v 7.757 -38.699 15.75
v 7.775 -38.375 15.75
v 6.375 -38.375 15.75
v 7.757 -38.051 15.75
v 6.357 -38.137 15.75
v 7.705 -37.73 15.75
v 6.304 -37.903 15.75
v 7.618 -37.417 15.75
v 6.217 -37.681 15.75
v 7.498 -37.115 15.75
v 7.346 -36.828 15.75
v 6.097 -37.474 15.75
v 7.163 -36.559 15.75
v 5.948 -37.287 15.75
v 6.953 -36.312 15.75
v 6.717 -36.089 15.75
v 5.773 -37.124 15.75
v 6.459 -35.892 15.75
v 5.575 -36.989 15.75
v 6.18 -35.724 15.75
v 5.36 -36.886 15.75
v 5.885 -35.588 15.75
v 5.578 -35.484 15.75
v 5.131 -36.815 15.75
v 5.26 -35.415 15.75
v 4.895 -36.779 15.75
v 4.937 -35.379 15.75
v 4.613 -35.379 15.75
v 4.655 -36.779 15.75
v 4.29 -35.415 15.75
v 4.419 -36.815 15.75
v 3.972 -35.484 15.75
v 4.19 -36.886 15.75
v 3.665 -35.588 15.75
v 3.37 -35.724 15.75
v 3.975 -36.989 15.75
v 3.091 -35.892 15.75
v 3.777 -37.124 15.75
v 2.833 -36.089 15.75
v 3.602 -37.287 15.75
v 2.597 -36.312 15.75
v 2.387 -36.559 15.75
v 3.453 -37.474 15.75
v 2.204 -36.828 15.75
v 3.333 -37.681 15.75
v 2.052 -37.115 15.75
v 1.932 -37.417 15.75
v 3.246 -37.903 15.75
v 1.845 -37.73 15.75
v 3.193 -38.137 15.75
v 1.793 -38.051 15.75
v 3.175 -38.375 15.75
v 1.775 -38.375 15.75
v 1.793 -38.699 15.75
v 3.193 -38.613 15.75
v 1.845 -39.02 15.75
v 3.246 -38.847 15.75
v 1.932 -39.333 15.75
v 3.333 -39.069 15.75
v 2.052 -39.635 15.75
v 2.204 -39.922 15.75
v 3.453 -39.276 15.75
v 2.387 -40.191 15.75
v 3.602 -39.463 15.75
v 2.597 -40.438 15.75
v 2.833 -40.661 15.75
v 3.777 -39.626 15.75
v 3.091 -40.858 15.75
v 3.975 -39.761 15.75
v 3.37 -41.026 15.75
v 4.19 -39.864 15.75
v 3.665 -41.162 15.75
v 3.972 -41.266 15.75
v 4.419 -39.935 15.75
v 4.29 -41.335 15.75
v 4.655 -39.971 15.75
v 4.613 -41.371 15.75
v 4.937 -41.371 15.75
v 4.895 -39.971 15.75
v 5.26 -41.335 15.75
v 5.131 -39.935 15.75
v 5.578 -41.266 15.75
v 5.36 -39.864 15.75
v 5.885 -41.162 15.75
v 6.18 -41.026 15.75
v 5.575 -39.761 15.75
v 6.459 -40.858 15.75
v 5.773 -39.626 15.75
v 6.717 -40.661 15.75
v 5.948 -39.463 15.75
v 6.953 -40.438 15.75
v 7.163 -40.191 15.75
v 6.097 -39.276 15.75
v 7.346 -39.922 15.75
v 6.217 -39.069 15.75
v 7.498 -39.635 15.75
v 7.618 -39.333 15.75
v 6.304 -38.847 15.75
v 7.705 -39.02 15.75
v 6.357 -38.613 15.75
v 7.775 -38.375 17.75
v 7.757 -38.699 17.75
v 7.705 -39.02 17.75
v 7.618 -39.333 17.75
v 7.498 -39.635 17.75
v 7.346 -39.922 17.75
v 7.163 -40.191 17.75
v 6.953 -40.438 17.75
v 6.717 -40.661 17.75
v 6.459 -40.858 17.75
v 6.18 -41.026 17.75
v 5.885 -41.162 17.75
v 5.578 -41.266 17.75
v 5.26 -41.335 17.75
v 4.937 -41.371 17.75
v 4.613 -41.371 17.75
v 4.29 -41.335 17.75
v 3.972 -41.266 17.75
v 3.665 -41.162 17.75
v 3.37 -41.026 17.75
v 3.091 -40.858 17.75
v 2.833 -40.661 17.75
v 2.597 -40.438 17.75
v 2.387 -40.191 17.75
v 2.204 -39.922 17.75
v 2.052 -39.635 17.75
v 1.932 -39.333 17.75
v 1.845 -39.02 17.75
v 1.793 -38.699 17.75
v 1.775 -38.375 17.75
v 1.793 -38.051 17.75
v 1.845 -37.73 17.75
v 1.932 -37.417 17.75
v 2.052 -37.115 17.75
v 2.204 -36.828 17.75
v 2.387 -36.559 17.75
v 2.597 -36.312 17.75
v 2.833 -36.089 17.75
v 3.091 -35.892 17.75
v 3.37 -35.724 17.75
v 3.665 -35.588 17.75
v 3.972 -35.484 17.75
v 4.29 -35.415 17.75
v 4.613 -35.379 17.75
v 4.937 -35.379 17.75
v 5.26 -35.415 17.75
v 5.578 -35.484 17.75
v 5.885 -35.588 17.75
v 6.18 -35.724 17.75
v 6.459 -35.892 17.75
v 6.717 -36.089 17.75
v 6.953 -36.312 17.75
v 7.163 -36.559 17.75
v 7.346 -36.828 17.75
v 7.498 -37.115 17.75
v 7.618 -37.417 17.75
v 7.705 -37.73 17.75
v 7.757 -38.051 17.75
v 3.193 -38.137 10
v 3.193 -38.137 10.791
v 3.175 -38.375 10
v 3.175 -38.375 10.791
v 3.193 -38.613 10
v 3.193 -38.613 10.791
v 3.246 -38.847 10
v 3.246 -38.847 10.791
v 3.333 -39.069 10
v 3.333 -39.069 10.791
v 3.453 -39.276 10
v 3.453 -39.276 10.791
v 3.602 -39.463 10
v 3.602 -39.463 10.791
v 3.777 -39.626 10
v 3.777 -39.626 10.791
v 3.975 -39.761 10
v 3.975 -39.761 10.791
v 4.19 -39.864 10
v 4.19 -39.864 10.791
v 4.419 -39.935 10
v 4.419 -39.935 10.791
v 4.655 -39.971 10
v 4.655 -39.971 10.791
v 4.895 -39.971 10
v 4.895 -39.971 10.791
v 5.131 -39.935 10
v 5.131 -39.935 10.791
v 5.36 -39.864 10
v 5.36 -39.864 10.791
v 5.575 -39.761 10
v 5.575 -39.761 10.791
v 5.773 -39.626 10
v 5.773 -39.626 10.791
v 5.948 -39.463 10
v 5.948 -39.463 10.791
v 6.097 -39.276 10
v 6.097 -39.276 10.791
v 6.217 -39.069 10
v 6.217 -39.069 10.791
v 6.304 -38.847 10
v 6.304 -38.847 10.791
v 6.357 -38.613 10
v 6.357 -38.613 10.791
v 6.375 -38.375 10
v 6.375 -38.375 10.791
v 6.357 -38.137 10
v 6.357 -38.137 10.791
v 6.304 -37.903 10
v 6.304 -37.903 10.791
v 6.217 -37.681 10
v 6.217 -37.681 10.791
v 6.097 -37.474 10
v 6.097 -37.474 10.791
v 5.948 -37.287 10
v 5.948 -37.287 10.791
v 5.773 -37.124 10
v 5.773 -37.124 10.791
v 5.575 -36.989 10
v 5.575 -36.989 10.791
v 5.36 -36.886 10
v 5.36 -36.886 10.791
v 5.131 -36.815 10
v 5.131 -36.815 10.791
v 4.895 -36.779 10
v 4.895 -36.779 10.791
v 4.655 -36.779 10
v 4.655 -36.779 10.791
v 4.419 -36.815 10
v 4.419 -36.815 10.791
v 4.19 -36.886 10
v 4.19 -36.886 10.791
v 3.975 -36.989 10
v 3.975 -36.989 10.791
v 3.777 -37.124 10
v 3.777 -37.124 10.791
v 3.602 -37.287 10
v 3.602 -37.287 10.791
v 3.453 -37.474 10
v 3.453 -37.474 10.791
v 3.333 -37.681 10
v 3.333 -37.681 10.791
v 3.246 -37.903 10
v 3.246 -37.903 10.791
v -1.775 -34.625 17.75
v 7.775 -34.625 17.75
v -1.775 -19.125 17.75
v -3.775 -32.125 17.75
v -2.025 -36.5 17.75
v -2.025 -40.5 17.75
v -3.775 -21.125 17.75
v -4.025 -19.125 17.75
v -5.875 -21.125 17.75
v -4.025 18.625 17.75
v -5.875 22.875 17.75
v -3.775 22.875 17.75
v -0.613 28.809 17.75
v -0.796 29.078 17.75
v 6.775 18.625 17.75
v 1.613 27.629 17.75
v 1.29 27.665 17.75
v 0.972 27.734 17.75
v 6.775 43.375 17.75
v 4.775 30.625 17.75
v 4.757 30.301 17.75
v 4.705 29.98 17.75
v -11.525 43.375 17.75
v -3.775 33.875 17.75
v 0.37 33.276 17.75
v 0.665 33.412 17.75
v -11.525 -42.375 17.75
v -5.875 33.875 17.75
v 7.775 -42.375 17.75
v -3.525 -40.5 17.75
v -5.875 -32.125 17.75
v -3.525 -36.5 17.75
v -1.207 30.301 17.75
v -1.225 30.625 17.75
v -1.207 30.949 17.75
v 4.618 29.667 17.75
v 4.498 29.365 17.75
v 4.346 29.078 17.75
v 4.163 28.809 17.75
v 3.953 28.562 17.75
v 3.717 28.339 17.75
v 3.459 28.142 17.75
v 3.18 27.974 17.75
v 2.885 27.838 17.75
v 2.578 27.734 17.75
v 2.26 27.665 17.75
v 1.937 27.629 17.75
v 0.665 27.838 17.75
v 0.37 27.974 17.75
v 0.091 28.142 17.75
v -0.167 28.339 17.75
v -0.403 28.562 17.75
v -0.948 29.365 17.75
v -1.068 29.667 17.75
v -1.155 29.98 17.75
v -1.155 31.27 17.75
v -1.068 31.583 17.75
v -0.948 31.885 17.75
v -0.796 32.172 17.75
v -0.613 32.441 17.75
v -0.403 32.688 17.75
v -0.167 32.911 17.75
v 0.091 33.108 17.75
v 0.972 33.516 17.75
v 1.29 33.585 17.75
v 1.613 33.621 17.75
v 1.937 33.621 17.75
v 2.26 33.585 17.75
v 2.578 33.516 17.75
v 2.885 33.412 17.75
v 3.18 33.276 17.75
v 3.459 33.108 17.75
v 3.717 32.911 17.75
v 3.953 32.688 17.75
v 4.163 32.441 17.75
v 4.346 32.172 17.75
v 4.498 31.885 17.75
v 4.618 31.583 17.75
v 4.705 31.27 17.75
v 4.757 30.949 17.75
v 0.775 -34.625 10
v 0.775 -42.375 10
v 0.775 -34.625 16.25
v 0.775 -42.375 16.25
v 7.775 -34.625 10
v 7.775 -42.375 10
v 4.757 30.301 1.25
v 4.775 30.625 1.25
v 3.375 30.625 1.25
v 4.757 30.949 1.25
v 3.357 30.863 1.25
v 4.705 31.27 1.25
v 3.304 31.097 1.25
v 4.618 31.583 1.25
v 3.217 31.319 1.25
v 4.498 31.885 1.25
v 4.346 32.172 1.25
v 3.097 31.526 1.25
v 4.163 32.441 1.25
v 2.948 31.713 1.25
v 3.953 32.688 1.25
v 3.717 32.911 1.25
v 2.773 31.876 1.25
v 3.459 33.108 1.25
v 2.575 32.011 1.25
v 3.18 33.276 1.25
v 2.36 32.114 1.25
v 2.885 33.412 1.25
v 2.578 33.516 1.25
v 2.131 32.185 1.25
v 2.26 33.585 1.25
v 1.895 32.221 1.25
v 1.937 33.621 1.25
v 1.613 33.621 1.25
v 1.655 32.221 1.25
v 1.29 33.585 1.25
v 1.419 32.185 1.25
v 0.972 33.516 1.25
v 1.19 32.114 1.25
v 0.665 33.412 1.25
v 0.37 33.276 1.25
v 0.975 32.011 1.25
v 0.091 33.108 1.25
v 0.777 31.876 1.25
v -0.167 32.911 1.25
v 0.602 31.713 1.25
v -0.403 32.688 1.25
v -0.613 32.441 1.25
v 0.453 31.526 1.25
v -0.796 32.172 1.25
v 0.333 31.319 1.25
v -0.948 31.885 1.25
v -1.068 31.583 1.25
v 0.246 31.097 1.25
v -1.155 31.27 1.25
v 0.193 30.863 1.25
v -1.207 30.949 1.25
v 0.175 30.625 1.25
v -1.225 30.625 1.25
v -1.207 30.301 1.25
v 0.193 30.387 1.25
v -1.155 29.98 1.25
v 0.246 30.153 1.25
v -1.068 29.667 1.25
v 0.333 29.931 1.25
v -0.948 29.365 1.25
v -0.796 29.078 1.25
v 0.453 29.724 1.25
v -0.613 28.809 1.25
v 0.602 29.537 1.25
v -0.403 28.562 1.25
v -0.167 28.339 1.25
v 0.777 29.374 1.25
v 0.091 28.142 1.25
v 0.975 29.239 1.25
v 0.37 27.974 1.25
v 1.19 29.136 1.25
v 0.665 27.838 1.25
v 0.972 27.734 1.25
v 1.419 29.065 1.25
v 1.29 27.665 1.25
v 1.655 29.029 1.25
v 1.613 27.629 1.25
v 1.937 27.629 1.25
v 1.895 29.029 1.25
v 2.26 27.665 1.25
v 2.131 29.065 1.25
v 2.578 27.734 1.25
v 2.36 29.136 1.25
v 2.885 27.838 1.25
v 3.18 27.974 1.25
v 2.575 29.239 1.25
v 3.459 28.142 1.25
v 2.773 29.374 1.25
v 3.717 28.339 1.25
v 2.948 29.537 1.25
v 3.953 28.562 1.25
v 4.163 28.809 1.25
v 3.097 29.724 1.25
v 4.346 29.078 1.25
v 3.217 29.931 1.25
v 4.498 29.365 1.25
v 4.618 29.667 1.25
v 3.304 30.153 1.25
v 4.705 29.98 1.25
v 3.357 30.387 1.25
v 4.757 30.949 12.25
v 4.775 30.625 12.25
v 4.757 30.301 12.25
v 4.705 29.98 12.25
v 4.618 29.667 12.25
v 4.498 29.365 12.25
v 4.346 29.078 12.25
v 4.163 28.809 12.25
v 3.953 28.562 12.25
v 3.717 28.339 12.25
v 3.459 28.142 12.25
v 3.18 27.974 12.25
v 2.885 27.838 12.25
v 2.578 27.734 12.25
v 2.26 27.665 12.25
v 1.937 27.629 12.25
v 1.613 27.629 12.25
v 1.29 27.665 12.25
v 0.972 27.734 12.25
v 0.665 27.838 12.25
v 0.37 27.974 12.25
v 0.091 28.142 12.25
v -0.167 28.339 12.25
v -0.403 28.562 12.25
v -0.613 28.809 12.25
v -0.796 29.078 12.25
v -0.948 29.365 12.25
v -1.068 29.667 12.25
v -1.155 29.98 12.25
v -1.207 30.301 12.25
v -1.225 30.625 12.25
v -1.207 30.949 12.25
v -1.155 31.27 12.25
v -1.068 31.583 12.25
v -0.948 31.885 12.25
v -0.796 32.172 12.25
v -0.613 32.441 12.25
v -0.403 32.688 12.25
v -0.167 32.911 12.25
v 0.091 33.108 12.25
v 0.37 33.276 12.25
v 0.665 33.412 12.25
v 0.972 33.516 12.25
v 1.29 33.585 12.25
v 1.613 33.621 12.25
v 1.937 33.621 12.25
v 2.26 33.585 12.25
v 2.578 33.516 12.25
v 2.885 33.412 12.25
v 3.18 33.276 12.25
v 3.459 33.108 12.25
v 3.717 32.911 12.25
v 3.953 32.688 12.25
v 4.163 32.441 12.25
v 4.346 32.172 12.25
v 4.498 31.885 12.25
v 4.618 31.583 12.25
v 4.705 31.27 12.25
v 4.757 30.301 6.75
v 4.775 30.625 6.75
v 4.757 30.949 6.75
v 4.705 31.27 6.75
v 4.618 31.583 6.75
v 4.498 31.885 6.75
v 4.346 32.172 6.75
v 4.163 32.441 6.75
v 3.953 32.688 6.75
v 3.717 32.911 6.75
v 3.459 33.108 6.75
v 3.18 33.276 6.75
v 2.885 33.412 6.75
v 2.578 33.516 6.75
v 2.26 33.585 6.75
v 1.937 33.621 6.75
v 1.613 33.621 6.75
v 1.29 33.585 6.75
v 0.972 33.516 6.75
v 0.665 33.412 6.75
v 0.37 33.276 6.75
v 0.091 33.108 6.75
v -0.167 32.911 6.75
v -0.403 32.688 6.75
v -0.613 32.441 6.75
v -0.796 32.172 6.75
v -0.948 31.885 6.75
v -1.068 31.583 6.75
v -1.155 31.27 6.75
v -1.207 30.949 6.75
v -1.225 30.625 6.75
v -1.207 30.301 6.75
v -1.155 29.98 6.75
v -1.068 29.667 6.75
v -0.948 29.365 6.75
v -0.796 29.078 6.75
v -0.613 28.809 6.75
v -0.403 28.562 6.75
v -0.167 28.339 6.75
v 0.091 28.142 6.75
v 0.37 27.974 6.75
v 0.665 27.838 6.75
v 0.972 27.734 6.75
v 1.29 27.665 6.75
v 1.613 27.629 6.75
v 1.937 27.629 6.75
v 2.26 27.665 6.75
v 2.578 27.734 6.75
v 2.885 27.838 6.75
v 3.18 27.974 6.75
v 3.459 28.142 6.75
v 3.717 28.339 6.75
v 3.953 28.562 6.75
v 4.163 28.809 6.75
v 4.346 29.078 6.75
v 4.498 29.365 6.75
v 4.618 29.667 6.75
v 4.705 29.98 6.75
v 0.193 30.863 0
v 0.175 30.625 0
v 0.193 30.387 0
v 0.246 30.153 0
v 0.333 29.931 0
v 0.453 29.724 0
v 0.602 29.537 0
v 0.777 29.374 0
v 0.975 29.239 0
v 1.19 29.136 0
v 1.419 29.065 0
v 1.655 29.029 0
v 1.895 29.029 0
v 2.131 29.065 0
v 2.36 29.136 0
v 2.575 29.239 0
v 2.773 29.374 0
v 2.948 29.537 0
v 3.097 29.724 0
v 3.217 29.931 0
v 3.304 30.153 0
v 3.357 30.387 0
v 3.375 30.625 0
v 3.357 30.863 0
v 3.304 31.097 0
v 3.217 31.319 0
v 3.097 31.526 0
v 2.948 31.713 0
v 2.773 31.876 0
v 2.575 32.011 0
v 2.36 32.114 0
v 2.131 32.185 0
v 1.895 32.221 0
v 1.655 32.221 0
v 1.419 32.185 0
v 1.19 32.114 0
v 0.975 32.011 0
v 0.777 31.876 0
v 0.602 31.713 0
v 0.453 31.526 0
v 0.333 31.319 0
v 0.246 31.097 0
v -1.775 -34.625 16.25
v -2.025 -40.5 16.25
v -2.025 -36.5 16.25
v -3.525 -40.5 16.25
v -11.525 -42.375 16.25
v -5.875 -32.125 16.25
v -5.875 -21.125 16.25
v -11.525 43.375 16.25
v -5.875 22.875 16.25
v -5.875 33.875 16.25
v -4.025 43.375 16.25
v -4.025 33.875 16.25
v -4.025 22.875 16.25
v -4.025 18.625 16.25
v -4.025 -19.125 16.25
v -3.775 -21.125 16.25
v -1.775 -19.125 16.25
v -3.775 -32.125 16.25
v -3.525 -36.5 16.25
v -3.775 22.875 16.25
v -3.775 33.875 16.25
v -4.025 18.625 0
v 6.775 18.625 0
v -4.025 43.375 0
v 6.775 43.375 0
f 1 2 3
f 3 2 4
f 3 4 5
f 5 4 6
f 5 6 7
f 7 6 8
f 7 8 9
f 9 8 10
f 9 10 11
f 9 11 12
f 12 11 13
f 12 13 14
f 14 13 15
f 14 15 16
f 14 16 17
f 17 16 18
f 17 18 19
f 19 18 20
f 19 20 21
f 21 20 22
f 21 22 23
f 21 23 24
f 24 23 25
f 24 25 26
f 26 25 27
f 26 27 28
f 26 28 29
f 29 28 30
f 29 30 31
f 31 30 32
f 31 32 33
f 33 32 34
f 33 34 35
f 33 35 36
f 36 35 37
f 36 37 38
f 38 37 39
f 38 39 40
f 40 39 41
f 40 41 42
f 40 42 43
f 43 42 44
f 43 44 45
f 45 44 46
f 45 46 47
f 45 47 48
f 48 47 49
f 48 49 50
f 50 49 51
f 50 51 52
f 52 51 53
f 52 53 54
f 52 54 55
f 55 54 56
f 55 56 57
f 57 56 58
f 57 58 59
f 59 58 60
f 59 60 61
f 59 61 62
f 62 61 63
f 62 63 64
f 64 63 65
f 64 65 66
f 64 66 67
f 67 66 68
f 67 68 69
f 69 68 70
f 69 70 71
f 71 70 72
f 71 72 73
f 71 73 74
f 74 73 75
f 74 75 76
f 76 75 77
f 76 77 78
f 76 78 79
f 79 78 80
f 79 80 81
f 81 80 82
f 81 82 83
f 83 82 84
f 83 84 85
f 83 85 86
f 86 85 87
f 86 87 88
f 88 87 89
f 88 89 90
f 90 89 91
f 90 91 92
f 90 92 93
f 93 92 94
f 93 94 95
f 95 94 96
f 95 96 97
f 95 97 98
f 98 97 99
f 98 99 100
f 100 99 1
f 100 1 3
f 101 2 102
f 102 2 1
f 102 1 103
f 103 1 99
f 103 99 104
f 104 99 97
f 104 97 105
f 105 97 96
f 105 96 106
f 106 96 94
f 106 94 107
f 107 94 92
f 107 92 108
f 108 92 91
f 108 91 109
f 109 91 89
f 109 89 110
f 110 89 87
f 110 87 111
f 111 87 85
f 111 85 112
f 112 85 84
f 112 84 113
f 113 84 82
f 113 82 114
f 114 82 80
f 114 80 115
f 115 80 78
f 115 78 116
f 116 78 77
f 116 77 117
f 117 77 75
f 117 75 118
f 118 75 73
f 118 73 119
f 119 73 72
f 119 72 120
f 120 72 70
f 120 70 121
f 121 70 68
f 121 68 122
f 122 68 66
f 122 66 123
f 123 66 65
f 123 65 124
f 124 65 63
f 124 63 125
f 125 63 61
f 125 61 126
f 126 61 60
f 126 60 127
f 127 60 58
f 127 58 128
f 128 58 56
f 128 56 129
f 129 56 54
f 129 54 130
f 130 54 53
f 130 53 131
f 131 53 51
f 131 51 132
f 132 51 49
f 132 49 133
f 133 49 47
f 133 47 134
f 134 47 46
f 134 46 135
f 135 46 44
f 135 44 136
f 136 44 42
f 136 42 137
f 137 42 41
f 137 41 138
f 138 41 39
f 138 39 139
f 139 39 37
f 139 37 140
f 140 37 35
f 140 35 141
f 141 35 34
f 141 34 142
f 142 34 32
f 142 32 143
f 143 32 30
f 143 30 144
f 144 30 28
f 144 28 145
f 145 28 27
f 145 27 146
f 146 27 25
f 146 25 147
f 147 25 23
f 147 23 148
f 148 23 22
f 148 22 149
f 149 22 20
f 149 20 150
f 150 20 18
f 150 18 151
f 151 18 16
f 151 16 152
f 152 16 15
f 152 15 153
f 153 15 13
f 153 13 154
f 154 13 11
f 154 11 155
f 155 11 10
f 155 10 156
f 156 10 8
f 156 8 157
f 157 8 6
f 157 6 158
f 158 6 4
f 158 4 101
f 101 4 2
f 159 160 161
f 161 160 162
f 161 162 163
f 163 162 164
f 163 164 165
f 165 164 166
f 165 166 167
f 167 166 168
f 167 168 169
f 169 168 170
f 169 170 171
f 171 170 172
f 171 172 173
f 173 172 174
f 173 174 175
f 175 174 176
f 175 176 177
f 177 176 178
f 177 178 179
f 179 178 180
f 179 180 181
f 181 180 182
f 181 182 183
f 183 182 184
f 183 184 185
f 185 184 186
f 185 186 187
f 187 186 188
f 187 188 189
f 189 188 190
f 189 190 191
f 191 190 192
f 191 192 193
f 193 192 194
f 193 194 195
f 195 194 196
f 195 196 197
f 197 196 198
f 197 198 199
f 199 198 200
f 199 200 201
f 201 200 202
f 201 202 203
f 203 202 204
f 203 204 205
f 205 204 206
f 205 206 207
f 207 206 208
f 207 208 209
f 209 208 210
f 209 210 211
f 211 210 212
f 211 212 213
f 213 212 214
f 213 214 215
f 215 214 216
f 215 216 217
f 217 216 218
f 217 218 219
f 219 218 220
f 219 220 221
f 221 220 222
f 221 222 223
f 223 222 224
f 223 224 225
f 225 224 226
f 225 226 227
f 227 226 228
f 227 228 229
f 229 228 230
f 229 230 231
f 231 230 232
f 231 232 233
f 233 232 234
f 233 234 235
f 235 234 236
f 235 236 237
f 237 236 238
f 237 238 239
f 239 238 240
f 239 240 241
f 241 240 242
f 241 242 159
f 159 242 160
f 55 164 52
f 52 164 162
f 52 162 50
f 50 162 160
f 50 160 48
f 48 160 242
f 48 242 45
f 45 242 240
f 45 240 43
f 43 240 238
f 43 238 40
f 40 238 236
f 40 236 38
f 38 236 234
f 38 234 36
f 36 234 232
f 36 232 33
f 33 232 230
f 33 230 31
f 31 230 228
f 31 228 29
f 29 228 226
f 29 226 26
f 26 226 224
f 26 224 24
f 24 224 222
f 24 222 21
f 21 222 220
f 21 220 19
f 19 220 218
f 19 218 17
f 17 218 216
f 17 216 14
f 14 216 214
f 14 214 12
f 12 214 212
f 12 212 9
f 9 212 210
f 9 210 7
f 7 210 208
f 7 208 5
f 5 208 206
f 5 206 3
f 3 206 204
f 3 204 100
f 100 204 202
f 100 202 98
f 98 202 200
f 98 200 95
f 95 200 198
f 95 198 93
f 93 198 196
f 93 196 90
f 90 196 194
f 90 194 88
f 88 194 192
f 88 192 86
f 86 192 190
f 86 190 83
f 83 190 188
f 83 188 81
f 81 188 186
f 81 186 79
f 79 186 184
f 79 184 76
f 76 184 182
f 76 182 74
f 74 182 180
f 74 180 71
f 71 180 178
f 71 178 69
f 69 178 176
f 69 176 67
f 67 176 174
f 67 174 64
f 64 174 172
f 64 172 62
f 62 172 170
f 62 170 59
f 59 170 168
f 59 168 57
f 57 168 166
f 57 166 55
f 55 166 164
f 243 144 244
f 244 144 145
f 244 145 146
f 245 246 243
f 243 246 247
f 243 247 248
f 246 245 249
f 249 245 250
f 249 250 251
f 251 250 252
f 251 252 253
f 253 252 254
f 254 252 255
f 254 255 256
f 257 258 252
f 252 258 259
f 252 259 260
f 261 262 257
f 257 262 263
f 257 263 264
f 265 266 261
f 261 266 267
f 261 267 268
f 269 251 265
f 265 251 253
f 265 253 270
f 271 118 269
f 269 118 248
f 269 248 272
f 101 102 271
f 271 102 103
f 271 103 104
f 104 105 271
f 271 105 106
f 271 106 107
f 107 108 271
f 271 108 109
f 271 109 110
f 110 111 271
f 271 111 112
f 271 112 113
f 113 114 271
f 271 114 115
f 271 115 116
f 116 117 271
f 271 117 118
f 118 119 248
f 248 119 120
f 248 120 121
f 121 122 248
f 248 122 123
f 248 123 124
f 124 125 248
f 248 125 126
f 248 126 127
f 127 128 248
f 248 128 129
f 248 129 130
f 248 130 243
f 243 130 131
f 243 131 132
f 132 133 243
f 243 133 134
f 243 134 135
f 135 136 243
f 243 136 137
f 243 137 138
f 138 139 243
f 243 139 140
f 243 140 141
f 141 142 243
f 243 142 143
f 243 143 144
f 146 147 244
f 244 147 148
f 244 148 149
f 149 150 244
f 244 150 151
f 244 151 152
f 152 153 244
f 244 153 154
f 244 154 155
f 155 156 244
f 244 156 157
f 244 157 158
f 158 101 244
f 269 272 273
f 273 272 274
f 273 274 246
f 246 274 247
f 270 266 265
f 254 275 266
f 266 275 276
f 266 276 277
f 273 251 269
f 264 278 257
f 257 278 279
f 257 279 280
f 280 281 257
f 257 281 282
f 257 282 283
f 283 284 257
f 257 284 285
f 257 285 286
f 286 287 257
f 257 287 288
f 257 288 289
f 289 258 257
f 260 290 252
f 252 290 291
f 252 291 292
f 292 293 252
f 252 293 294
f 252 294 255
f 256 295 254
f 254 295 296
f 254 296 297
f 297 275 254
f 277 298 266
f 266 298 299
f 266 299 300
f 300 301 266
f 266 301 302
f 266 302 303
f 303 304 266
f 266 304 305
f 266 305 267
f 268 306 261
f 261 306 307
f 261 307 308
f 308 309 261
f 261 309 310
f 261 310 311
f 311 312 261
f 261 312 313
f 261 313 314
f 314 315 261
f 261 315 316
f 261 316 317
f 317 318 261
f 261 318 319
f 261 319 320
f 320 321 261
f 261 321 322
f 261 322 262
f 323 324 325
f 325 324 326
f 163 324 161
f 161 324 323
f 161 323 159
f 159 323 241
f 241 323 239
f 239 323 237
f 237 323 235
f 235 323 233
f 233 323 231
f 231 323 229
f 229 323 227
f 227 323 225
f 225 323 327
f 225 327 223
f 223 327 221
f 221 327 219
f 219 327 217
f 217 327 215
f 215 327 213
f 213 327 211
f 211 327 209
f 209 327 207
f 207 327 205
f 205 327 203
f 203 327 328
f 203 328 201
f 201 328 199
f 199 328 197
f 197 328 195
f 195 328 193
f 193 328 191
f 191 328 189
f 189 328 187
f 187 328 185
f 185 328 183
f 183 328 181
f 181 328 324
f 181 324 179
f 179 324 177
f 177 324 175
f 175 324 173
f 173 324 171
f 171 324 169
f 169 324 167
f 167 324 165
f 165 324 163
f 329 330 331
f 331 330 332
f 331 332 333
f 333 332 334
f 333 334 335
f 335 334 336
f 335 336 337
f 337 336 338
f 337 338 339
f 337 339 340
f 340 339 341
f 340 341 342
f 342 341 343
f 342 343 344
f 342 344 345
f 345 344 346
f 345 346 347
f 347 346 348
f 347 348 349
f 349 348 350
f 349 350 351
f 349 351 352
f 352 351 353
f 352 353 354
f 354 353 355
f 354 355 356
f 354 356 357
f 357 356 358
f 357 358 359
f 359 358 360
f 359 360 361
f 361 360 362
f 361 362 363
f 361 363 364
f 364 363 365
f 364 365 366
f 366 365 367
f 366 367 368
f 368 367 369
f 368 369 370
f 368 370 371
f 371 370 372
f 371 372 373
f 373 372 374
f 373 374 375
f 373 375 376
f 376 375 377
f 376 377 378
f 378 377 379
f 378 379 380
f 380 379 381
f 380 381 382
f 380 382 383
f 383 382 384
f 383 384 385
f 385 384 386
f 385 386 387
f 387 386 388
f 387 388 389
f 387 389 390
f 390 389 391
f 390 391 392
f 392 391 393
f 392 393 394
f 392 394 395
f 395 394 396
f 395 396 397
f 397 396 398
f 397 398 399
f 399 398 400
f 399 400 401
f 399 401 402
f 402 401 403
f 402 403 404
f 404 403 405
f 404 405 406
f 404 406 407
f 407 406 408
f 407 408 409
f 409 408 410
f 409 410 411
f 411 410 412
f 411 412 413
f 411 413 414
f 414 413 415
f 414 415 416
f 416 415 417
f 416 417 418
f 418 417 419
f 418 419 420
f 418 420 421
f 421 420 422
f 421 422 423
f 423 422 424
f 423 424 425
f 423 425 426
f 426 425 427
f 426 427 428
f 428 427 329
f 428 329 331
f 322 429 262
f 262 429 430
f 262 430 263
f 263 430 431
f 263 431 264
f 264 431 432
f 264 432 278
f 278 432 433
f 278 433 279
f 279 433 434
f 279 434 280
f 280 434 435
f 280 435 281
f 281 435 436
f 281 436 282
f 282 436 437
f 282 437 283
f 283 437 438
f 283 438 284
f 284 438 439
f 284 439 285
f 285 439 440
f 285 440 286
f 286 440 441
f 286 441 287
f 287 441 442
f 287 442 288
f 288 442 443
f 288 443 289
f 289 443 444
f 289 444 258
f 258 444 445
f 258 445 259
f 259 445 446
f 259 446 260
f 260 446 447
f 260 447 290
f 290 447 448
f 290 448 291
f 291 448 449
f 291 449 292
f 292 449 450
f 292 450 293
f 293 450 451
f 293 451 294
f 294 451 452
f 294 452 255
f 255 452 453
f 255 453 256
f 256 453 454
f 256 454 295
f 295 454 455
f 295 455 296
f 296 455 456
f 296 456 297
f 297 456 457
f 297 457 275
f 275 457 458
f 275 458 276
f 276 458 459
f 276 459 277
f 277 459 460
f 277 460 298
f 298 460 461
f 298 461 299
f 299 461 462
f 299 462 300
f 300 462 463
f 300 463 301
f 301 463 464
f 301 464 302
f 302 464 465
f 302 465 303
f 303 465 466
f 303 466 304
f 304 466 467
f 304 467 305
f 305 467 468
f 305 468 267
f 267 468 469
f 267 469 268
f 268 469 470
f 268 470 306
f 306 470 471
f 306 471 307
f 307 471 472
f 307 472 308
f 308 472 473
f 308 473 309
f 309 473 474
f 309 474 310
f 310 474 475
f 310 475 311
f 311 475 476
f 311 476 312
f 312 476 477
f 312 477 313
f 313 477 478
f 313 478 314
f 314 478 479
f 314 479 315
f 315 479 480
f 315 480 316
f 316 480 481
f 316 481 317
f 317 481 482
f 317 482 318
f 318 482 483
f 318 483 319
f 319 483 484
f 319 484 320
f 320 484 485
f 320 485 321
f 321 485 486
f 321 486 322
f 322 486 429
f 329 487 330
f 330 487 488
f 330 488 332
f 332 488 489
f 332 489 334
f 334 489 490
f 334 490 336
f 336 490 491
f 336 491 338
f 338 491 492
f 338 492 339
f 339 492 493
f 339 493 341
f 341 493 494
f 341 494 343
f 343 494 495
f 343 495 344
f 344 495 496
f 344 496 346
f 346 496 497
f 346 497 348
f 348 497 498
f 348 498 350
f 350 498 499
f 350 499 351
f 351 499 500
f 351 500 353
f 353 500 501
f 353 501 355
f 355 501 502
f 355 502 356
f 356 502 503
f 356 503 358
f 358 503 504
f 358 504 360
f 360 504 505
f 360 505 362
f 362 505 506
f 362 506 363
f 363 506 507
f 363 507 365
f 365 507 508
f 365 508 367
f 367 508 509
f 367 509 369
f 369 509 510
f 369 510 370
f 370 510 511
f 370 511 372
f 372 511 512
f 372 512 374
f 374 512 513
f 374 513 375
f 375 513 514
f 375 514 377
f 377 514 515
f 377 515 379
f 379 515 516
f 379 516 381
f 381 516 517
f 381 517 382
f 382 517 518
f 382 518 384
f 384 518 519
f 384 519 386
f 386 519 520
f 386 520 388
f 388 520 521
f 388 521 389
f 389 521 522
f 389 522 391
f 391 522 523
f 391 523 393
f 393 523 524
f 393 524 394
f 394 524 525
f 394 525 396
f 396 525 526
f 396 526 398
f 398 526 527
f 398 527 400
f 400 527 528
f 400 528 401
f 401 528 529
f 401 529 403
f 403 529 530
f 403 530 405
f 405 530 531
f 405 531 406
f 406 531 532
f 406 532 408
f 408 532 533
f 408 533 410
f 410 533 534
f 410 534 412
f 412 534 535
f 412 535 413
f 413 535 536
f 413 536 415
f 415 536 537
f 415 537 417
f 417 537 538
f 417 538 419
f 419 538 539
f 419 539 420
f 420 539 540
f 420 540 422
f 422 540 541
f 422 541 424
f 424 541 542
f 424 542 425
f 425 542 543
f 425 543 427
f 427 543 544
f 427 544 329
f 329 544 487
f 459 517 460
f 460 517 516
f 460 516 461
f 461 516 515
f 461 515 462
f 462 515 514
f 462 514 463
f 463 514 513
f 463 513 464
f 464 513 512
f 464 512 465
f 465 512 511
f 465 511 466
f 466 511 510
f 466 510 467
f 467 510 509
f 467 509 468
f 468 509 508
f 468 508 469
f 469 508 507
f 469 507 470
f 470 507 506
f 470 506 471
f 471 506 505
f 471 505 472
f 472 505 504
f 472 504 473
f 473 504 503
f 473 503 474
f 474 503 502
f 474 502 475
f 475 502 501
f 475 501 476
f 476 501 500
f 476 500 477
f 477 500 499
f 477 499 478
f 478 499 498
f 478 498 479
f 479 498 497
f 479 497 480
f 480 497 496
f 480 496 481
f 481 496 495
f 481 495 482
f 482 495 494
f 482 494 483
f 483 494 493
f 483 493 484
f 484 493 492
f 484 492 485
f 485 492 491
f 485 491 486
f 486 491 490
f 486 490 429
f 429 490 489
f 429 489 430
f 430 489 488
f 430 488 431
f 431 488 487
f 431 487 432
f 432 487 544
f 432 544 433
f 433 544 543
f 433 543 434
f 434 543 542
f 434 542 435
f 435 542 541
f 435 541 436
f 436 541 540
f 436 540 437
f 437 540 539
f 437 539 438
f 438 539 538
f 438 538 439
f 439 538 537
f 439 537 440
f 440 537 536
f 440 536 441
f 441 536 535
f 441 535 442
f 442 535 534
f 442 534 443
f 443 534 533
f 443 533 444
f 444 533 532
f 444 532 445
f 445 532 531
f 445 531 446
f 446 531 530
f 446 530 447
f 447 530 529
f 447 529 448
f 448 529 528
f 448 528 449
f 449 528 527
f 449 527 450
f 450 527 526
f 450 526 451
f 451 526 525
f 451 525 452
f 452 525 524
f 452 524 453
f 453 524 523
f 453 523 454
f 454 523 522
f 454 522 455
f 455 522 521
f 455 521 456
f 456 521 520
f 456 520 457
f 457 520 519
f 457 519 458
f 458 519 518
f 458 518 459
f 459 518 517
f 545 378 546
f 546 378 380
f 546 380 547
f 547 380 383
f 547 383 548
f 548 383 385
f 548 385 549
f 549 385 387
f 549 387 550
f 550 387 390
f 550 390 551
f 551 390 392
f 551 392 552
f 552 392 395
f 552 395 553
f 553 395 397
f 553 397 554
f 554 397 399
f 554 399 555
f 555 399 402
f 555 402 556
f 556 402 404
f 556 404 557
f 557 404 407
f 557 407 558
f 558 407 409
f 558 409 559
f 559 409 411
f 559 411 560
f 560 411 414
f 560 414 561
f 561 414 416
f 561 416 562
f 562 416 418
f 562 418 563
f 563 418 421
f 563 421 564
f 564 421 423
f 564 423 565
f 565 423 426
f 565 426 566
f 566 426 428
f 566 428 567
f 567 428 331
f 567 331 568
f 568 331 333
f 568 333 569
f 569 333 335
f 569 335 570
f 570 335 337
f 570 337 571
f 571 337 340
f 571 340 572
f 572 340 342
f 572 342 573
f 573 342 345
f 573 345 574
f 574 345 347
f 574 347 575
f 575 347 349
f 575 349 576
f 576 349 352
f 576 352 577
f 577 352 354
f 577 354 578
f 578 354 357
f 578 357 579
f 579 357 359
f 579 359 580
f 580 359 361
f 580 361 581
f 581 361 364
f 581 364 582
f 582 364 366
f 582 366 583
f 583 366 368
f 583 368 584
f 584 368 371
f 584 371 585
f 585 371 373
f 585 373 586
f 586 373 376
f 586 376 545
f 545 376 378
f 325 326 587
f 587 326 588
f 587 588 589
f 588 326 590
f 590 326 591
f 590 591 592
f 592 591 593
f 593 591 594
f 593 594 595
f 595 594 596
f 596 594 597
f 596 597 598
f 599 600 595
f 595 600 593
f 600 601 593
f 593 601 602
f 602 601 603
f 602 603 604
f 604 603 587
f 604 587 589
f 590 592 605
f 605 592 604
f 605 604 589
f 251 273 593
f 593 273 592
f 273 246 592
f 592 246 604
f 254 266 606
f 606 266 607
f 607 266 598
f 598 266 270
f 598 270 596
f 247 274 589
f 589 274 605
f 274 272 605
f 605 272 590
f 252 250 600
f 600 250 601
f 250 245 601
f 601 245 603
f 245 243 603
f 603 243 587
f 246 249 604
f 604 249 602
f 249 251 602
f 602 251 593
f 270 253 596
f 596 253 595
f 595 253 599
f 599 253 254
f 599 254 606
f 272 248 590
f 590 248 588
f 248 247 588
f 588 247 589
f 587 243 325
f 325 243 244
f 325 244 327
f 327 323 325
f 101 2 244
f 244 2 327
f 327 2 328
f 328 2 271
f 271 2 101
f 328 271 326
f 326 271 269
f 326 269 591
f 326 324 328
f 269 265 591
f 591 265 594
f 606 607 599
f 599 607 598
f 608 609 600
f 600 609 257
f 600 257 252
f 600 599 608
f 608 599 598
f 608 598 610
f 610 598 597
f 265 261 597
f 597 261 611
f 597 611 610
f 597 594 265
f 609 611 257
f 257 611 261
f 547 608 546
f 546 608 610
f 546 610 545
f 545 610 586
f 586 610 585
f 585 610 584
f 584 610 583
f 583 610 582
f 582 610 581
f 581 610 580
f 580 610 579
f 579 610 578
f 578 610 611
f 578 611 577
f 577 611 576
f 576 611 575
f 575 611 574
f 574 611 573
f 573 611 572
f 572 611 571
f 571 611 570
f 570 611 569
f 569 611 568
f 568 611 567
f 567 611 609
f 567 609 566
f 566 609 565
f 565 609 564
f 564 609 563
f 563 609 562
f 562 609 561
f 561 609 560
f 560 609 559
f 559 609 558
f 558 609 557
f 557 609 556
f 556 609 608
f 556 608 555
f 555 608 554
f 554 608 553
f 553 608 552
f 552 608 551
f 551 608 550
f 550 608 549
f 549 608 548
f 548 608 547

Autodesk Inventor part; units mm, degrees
ref_plane "Work Plane1" through (0, 0, 0) normal (0, 0, 1) x (1, 0, 0)
sketch "Sketch1" plane through (0, 0, 0) normal (0, 0, 1) x (1, 0, 0)
  line L0 (7.775, 18.625) -> (-4.025, 18.625) projected
  line L1 (-4.025, 43.875) -> (7.775, 43.875) projected
  line L2 (-4.025, 18.625) -> (-4.025, 43.875) projected
  line L3 (7.775, 23.875) -> (7.775, -22.625) projected
  line L4 (-4.025, 18.625) -> (6.775, 18.625)
  line L5 (6.775, 18.625) -> (6.775, 43.375)
  line L6 (6.775, 43.375) -> (-4.025, 43.375)
  line L7 (-4.025, 43.375) -> (-4.025, 18.625)
  circle A0 centre (1.775, 30.625) radius 1.3 projected
  line L8 (7.775, -34.625) -> (2.775, -34.625) projected
  line L9 (2.775, -34.625) -> (2.775, -42.625) projected
  line L10 (7.775, -42.625) -> (2.775, -42.625) projected
  line L11 (5.275, -34.625) -> (-1.225, -34.625)
  line L12 (-1.225, -34.625) -> (-1.225, -42.125)
  line L13 (-1.225, -42.125) -> (5.275, -42.125)
  line L14 (5.275, -42.125) -> (5.275, -34.625)
  circle A1 centre (4.775, -38.375) radius 1.3 projected
  line L15 (7.775, 18.625) -> (7.775, 43.875) projected
  line L16 (7.775, -42.625) -> (7.775, -34.625) projected
  point P0 (0, 0)
  point P1 (-4.025, 43.375)
  dimension "d0" = 0.5
  dimension "d1" = 1
  dimension "d30" = 0.5
  dimension "d31" = 6.5
ref_plane "Work Plane2" through (-11.525, -42.375, 16.25) normal (0, 0, 1) x (1, 0, 0)
extrude "Extrusion1" add sketch "Sketch1" along normal up to surface (16.25 mm away) contours L0 L2 L6 L5
sketch "Sketch2" plane through (-4.025, 43.375, 16.25) normal (0, 0, 1) x (1, 0, 0)
  line L0 (-7.5, -85.75) -> (-7.5, 0)
  line L1 (-7.5, 0) -> (10.8, 0)
  line L2 (10.8, -24.75) -> (10.8, 0) projected
  line L3 (10.8, 0) -> (10.8, -24.75)
  line L4 (0, -24.75) -> (10.8, -24.75) projected
  line L5 (10.8, -24.75) -> (0, -24.75)
  line L6 (0, -24.75) -> (0, -64.5)
  line L7 (0, -64.5) -> (-1.85, -64.5)
  line L8 (-1.85, -64.5) -> (-1.85, -75.5)
  line L9 (-1.85, -75.5) -> (0, -75.5)
  line L10 (-7.5, -85.75) -> (6.5, -85.75) projected
  line L11 (-7.5, 0.25) -> (-7.5, -85.75) projected
  line L12 (0, -64.75) -> (0, -75.25) projected
  line L13 (0, -64.75) -> (-1.6, -64.75) projected
  line L14 (-1.6, -75.25) -> (-1.6, -64.75) projected
  line L15 (0, -75.25) -> (-1.6, -75.25) projected
  line L16 (0, -9.75) -> (0, -20.25) projected
  line L17 (0, -9.75) -> (-1.6, -9.75) projected
  line L18 (-1.6, -20.25) -> (-1.6, -9.75) projected
  line L19 (0, -20.25) -> (-1.6, -20.25) projected
  line L20 (-1.85, -9.5) -> (0.25, -9.5)
  line L21 (0.25, -9.5) -> (0.25, -20.5)
  line L22 (0.25, -20.5) -> (-1.85, -20.5)
  line L23 (-1.85, -20.5) -> (-1.85, -9.5)
  line L24 (0, 0) -> (10.8, 0) projected
  line L25 (11.8, -78) -> (6.8, -78) projected
  line L26 (6.8, -78) -> (6.8, -86) projected
  line L27 (11.8, -86) -> (6.8, -86) projected
  line L28 (11.8, -217.75) -> (11.8, 42.25)
  line L29 (11.8, -85.75) -> (11.8, -78)
  line L30 (11.8, -78) -> (0, -78)
  line L31 (0, -78) -> (0, -75.5)
  line L32 (-7.5, -85.75) -> (11.8, -85.75)
  line L33 (0.5, -83.875) -> (0.5, -79.875)
  line L34 (0.5, -79.875) -> (2, -79.875)
  line L35 (2, -79.875) -> (2, -83.875)
  line L36 (2, -83.875) -> (0.5, -83.875)
  line L37 (0, -75.5) -> (0.25, -75.5)
  line L38 (0.25, -75.5) -> (0.25, -64.5)
  line L39 (0.25, -64.5) -> (0, -64.5)
  line L40 (2.25, -78) -> (2.25, -62.5)
  line L41 (2.25, -62.5) -> (0, -62.5)
  circle A0 centre (8.8, -81.75) radius 1.3 projected
  line L42 (11.8, -86) -> (11.8, -78) projected
  point P0 (4.025, -43.375)
  point P1 (-7.5, -85.75)
  point P2 (6.5, -85.75)
  point P3 (6.8, -85.75)
  dimension "d4" = 0.25
  dimension "d5" = 0.25
  dimension "d6" = 0.25
  dimension "d7" = 0.25
  dimension "d22" = 4
  dimension "d23" = 1.875
  dimension "d24" = 1.5
  dimension "d25" = 8
  dimension "d44" = 0.25
  dimension "d45" = 2
  dimension "d46" = 2
ref_plane "Work Plane3" through (-12.525, -42.875, 17.75) normal (0, 0, 1) x (1, 0, 0)
ref_plane "Work Plane4" through (-11.525, 43.375, 17.75) normal (0, 0, 1) x (1, 0, 0)
ref_plane "Work Plane5" through (-12.525, -42.875, 17.75) normal (0, 0, 1) x (1, 0, 0)
extrude "Extrusion3" add sketch "Sketch2" along normal up to surface (1.5 mm away) contours L0 L1 L2 L4 L6 L7 L8 L9 L31 L30 L26 L32 L10 | L26 L25 L28 L32 | L30 L31 L37 L38 L39 L6 L41 L40 | A0
sketch "Sketch3" plane through (-11.525, 43.375, 17.75) normal (0, 0, 1) x (1, 0, 0)
  line L0 (18.3, 0) -> (18.3, -24.75) projected
  line L1 (18.3, -24.75) -> (7.5, -24.75) projected
  line L2 (14.3, -78) -> (14.3, -86) projected
  line L3 (9.75, -78) -> (19.3, -78) projected
  point P0 (11.525, -43.375)
  point P1 (13.3, -12.75)
  point P2 (7.5, -78)
  dimension "d13" = 5
  dimension "d14" = 12
hole "Hole1" at (1.775, 30.625, 17.75) direction (0, 0, -1) diameter 3.2 end through all counterbore diameter 6 counterbore depth 16.5
sketch "Sketch4" plane through (-4.025, 43.375, 16.25) normal (0, 0, -1) x (-1, 0, 0)
  line L0 (-2.25, -78) -> (-11.8, -78) projected
  line L1 (-11.8, -78) -> (-11.8, -85.75) projected
  line L2 (-4.8, -78) -> (-11.8, -78)
  line L3 (-11.8, -78) -> (-11.8, -85.75)
  line L4 (-11.8, -85.75) -> (-4.8, -85.75)
  line L5 (-4.8, -85.75) -> (-4.8, -78)
  point P0 (-4.025, -43.375)
  point P1 (0, -78)
  dimension "d32" = 7
ref_plane "Work Plane6" through (2.775, -42.625, 10) normal (0, 0, 1) x (1, 0, 0)
extrude "Extrusion4" add sketch "Sketch4" along normal up to surface (6.25 mm away)
sketch "Sketch5" plane through (-11.525, -42.375, 17.75) normal (0, 0, 1) x (1, 0, 0)
  line L0 (19.3, 7.75) -> (19.3, 0) projected
  line L1 (9.75, 7.75) -> (19.3, 7.75) projected
  point P0 (11.525, 42.375)
  point P1 (16.3, 4)
  point P2 (7.5, 7.75)
  dimension "d35" = 3
  dimension "d36" = 3.75
hole "Hole2" at (4.775, -38.375, 17.75) direction (0, 0, -1) diameter 3.2 end through all counterbore diameter 6 counterbore depth 2
properties part number "Display_Cover"
